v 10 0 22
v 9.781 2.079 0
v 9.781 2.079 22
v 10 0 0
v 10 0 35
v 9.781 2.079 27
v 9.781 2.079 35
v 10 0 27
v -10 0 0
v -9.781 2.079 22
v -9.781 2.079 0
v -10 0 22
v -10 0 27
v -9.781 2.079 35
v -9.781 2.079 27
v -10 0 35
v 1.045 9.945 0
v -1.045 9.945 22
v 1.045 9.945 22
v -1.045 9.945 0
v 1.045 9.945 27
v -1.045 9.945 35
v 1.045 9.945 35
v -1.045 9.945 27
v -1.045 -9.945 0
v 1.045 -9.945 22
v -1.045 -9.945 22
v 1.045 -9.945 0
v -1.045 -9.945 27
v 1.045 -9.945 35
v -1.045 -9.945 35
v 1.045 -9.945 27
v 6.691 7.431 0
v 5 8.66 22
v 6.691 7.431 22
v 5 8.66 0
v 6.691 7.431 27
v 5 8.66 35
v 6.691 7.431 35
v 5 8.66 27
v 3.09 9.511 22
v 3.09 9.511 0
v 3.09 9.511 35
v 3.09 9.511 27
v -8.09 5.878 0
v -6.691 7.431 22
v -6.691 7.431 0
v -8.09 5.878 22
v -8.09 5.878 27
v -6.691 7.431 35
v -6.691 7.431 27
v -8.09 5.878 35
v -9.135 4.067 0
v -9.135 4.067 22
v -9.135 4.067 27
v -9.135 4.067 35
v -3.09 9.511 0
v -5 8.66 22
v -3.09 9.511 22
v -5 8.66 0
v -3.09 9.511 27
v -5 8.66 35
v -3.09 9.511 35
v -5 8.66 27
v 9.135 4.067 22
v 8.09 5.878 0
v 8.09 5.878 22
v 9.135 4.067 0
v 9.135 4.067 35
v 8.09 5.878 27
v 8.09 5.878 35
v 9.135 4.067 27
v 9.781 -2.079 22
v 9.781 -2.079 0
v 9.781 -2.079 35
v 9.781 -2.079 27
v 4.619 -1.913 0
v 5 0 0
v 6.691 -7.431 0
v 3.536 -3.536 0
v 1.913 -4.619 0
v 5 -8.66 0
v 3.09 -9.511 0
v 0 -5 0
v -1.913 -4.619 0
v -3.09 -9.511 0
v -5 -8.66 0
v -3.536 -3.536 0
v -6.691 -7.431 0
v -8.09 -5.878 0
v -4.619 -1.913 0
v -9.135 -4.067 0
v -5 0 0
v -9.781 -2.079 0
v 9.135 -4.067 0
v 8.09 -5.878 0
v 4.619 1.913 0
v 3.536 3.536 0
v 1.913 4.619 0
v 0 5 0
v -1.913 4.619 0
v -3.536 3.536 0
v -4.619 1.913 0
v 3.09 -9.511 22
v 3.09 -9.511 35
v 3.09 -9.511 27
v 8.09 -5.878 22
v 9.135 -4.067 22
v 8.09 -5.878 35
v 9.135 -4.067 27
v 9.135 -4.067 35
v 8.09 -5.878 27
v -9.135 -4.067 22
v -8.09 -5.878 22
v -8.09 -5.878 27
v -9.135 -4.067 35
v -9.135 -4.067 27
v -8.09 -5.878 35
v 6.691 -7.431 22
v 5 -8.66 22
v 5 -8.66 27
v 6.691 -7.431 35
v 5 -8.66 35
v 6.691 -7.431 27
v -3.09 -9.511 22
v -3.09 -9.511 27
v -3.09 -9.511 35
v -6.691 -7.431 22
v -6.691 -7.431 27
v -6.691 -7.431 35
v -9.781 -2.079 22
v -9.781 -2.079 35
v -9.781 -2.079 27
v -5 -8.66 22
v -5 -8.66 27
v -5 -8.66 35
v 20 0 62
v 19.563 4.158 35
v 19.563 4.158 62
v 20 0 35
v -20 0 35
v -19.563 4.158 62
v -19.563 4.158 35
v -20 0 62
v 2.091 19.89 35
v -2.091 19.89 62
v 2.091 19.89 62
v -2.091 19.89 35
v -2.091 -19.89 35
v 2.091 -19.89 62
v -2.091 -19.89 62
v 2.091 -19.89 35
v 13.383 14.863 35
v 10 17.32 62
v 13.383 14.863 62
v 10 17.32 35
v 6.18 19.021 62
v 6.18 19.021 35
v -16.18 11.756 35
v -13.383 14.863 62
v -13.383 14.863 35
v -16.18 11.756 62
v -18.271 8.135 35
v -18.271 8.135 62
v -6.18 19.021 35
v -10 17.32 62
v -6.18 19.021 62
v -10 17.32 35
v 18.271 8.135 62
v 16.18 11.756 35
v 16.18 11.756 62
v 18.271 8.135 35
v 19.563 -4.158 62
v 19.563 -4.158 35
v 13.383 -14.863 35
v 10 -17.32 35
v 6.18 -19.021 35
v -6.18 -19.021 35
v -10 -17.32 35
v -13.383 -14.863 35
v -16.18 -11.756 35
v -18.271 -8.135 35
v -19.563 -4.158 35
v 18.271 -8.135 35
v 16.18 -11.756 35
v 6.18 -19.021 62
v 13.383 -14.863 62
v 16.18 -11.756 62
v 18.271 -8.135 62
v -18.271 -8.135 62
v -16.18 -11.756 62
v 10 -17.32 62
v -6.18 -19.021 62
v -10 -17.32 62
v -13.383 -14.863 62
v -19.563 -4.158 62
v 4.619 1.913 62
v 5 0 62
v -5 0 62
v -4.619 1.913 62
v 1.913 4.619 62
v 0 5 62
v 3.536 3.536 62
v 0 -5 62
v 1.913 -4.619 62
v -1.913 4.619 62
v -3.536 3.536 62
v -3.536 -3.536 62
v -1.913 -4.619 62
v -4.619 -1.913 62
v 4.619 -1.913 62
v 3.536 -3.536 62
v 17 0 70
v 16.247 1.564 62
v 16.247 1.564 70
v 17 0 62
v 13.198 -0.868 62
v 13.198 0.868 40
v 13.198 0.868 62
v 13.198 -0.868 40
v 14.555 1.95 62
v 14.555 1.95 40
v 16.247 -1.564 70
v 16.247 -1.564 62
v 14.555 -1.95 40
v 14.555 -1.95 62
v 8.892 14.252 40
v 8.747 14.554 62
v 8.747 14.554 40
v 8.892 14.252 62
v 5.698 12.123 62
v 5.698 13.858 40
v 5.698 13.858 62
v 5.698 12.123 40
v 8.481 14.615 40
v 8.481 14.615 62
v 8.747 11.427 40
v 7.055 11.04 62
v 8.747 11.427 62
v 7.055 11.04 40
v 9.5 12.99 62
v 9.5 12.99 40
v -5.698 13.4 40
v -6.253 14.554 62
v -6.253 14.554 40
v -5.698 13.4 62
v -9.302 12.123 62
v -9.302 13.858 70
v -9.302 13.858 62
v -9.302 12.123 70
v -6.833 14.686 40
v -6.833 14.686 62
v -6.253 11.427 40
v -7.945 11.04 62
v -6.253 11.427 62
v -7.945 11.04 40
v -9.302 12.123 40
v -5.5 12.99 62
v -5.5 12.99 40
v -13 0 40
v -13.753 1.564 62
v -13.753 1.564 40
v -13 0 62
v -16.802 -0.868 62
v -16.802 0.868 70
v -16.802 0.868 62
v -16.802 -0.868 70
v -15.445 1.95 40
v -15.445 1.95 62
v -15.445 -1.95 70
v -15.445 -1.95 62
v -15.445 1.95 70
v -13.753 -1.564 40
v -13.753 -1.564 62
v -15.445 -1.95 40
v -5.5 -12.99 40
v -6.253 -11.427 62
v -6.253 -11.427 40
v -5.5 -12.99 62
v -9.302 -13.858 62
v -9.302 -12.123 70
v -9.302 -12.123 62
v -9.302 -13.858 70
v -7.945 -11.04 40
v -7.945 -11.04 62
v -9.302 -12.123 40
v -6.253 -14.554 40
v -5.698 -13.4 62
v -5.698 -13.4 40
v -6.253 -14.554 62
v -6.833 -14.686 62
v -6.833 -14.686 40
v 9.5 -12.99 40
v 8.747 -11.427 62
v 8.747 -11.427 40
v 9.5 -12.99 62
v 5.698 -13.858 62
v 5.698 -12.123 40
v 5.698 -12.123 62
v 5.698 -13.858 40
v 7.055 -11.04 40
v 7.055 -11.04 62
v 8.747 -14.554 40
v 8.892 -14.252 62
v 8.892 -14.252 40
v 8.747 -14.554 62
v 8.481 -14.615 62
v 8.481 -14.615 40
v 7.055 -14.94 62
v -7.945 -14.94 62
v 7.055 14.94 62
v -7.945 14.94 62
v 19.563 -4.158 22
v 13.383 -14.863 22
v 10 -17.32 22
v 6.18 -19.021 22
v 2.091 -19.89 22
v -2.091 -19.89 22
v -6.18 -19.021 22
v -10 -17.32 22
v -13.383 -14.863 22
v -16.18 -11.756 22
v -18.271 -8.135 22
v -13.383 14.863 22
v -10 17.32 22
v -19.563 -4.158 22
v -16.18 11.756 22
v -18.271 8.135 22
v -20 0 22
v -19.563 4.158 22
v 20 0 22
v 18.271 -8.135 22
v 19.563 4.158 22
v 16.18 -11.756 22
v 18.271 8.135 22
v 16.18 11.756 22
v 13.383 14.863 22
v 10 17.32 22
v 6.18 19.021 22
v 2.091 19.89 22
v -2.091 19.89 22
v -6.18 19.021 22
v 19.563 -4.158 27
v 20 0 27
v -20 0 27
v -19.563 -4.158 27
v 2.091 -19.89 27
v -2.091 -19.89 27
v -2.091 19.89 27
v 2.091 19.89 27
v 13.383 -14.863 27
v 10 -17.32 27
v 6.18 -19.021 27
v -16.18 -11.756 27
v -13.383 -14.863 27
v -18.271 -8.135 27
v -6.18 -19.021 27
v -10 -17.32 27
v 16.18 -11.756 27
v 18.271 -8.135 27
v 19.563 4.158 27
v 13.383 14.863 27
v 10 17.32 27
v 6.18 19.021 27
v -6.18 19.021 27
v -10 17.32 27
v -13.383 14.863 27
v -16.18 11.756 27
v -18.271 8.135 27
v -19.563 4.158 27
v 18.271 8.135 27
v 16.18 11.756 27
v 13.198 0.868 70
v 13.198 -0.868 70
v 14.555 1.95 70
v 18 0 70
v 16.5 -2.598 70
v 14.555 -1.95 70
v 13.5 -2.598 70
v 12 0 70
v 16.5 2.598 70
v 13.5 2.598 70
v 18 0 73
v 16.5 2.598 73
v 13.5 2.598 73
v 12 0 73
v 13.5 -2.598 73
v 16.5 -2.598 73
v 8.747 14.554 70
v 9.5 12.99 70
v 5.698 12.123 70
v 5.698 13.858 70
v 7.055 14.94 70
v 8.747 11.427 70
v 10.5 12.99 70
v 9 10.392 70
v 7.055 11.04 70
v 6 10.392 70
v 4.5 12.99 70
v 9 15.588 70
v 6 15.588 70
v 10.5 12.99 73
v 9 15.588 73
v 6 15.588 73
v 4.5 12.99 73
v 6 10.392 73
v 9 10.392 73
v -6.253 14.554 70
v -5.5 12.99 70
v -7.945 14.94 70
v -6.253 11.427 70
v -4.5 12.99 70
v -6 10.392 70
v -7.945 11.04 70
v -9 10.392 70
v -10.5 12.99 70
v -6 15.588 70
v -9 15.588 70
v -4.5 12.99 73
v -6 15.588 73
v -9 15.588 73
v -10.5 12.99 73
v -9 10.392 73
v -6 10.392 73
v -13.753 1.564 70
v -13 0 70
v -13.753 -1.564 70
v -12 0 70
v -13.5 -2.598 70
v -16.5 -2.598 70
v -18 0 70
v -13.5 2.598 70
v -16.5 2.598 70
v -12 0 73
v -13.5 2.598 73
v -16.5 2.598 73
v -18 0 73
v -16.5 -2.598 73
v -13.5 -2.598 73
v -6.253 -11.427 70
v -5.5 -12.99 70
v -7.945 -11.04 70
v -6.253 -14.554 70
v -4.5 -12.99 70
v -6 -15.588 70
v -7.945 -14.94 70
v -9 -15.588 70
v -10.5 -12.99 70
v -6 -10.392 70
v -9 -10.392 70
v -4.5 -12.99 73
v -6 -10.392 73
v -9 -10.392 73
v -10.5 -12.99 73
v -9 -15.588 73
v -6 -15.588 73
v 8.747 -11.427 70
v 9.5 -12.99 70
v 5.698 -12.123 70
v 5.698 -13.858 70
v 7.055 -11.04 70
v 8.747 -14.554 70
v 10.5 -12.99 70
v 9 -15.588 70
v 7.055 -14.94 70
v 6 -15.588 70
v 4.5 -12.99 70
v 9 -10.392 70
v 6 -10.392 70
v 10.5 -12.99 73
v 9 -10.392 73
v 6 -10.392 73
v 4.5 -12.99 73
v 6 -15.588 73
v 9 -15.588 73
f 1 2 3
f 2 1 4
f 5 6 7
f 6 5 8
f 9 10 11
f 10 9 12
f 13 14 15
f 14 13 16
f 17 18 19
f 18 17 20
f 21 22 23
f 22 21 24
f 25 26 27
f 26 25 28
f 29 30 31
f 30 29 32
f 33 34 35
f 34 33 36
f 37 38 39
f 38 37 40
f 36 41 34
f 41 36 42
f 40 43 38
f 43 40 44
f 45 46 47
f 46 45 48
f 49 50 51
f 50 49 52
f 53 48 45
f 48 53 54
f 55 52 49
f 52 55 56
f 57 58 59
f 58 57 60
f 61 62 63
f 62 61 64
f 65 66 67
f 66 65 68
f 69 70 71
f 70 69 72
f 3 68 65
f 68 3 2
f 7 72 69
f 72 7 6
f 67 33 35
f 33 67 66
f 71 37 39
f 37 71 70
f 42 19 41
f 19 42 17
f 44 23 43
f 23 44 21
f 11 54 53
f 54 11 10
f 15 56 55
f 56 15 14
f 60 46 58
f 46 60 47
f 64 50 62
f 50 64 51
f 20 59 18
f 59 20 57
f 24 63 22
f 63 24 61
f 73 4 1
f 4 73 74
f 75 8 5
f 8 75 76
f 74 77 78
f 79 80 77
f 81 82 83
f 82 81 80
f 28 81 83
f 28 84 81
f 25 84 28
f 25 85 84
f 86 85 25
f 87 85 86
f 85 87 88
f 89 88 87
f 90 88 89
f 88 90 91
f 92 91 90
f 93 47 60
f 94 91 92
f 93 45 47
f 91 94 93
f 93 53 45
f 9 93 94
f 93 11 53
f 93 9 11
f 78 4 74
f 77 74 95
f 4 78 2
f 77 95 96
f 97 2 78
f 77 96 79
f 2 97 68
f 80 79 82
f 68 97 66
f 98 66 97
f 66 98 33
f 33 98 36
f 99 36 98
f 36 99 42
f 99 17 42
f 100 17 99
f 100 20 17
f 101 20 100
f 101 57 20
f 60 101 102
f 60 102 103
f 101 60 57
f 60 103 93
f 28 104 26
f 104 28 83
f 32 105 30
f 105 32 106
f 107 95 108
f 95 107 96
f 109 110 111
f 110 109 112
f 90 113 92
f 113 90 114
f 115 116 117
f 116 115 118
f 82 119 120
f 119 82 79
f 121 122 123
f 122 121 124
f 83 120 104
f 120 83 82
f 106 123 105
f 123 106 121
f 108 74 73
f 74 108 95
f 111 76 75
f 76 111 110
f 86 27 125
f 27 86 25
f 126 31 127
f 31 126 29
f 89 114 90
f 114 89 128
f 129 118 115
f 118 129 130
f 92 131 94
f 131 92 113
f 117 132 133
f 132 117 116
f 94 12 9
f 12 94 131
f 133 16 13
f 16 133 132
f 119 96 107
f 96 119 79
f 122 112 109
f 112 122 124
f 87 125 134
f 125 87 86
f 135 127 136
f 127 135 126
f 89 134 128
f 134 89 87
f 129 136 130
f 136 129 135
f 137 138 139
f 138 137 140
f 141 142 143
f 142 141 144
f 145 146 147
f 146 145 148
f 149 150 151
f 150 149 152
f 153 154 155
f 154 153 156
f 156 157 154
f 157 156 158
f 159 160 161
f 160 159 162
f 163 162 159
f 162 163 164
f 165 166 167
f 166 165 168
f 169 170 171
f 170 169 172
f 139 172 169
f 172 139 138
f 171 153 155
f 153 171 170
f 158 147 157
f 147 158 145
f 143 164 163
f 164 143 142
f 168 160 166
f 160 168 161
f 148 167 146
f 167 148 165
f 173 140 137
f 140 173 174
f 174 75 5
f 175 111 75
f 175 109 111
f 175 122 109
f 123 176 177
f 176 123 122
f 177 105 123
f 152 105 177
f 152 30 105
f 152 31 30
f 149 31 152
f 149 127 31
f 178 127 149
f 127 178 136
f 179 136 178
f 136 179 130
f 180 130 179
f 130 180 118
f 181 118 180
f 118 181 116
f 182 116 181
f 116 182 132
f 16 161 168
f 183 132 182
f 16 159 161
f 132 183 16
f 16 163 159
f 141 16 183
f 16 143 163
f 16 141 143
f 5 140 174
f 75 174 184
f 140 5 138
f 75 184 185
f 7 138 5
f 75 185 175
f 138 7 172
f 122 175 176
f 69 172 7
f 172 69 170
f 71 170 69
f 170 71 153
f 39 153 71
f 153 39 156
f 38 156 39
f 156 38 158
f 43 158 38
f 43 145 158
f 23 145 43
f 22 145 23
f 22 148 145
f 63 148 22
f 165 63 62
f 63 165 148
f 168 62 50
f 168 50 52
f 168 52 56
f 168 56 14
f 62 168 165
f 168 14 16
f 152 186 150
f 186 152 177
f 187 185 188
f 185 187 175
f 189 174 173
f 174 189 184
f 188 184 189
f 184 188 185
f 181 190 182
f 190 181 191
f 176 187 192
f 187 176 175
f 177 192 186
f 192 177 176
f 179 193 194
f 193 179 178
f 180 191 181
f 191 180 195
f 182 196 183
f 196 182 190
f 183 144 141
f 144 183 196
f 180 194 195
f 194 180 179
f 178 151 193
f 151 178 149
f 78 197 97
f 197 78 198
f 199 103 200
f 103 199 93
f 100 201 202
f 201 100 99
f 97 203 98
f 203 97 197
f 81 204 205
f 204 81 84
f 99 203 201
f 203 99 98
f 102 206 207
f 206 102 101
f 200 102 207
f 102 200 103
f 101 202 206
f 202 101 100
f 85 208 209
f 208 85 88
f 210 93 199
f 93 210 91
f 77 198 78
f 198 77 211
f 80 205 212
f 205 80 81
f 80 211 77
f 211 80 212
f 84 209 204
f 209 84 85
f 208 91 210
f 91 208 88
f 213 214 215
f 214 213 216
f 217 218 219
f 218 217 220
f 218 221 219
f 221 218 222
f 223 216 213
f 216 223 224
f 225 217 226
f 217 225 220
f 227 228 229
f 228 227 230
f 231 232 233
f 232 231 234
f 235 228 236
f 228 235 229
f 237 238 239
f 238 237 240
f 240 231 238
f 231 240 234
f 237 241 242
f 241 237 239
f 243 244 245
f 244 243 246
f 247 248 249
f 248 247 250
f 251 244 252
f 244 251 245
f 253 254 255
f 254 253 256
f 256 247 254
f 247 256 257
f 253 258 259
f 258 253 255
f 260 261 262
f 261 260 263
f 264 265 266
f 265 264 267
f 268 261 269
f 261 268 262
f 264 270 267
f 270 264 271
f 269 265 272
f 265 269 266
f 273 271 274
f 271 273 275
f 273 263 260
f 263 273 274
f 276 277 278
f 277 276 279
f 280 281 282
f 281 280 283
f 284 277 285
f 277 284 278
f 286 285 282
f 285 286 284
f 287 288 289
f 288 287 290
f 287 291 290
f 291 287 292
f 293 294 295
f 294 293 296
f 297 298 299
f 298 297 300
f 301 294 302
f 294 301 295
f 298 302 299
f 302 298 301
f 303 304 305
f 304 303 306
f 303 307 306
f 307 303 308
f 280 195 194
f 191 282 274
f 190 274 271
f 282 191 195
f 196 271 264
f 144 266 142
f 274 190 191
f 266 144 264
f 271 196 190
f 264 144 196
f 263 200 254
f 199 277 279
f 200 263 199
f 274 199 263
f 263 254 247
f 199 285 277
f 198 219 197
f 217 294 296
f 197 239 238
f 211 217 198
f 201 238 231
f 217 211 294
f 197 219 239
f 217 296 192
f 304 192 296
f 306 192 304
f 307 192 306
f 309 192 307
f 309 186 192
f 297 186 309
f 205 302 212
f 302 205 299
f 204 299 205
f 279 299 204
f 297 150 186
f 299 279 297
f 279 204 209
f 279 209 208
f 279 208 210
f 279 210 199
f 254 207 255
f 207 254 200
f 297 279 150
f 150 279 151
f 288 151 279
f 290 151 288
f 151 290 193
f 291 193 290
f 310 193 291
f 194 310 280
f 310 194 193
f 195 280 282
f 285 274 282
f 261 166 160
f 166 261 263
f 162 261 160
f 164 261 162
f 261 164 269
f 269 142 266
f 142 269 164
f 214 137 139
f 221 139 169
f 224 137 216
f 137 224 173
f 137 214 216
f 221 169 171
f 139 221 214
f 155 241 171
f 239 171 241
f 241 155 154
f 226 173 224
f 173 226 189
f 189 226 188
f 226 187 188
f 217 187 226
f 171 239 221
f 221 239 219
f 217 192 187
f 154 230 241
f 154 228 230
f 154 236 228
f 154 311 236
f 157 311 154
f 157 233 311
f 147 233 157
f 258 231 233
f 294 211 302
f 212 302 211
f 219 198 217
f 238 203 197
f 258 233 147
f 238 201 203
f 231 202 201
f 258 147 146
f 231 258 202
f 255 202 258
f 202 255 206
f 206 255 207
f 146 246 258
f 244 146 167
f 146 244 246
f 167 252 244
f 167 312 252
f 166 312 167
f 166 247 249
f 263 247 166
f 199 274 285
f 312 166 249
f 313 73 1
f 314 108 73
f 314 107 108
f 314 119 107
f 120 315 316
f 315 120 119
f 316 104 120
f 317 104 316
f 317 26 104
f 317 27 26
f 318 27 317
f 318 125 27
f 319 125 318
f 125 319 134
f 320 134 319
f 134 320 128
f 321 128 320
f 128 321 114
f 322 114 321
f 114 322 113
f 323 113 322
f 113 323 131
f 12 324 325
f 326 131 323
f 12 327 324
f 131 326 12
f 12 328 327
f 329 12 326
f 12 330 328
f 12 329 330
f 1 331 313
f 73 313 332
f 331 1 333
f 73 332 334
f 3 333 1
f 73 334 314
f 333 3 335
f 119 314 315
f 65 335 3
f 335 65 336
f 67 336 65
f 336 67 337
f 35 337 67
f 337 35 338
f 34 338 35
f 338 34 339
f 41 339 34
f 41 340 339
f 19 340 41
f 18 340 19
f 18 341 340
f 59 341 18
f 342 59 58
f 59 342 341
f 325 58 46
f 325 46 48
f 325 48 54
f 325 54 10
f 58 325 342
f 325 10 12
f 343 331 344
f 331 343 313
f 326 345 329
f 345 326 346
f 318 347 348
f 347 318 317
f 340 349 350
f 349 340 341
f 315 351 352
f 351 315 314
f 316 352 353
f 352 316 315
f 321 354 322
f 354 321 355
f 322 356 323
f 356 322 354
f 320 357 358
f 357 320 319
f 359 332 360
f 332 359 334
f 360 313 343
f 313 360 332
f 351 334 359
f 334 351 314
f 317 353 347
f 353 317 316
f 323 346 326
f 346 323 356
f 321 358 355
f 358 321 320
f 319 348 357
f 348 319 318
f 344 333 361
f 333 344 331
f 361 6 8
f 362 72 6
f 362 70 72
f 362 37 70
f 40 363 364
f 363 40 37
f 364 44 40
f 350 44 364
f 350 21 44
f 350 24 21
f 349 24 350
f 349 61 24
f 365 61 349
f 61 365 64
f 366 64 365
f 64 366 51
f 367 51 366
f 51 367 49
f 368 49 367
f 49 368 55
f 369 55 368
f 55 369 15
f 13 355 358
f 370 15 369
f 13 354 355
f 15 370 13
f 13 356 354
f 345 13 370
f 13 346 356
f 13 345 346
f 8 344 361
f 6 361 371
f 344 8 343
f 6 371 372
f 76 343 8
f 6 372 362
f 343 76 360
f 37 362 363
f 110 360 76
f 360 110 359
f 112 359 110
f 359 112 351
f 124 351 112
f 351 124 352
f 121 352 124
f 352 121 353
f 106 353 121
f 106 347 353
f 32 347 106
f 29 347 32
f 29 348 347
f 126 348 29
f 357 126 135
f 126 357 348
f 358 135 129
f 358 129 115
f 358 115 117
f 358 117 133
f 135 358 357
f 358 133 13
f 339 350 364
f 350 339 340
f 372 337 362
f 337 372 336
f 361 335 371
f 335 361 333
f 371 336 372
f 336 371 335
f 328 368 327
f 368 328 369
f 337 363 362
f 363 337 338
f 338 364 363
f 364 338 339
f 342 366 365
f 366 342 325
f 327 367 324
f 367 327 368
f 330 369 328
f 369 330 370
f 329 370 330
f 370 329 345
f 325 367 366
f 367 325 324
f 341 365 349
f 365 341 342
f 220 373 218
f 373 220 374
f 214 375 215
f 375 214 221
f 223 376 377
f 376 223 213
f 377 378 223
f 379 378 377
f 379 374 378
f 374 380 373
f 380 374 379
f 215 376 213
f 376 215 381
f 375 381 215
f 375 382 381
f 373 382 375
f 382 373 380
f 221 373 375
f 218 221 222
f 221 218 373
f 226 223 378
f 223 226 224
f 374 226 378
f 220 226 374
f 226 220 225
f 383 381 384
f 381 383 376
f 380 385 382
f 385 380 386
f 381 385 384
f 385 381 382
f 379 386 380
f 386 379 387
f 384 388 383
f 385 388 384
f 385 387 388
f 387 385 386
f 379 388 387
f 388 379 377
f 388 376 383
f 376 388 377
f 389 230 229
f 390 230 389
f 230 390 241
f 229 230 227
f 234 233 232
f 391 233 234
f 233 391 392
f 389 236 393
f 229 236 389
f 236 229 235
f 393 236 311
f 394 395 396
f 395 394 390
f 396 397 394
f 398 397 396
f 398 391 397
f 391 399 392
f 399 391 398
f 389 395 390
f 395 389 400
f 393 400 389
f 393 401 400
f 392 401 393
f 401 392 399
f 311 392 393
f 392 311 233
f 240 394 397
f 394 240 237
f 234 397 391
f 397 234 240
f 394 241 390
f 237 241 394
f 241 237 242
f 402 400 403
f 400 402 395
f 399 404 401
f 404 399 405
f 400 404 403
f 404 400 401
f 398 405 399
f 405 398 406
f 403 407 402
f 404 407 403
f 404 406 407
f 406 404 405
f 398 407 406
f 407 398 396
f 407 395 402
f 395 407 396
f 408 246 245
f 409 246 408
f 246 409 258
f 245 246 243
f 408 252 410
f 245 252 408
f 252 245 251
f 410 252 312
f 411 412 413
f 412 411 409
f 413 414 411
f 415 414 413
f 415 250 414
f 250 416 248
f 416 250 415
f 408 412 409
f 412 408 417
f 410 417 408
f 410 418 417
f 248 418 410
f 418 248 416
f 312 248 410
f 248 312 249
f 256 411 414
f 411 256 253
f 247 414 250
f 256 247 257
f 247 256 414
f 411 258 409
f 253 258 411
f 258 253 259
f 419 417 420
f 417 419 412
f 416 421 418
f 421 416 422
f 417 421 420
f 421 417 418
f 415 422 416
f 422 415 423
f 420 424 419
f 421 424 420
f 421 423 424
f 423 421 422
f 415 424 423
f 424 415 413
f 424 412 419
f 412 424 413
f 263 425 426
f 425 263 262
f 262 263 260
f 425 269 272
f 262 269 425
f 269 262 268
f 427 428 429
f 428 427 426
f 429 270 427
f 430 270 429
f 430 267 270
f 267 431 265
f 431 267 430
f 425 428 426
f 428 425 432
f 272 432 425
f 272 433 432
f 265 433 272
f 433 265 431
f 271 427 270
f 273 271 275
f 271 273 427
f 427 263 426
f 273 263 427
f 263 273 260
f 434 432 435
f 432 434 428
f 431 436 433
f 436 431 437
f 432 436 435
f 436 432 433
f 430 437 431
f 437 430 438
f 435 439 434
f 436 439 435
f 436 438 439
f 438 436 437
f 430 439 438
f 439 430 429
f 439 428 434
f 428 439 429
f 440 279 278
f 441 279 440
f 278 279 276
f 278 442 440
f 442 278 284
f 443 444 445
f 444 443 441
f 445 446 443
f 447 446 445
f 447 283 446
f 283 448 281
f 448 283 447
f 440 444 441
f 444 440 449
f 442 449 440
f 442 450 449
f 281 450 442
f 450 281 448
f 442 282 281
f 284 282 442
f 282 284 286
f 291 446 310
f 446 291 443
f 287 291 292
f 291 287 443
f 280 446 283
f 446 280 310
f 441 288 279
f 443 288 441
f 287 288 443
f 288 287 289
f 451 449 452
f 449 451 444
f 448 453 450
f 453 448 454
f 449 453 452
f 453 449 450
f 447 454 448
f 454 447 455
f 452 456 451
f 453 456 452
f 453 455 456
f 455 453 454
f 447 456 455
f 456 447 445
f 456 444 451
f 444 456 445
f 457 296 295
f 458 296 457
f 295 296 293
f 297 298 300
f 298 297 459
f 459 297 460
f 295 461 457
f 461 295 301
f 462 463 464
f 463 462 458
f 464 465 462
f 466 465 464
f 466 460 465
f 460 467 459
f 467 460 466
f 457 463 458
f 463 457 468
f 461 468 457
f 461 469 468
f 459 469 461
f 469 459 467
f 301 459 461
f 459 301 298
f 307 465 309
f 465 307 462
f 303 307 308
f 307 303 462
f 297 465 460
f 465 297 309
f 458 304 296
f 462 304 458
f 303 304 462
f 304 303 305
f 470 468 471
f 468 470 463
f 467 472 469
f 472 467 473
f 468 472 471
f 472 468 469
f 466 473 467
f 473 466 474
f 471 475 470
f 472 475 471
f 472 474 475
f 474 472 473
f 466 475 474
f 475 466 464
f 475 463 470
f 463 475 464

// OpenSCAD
// Parameters
shaft_d = 20;
shaft_l = 40;
bore_d = 10;

flange_d = 40;
flange_t = 5;
bolt_hole_d = 4;
bolt_circle_d = 30;

spacer_t = 2;

bolt_d = 4;
bolt_l = 30;
nut_d = 6;
nut_h = 3;

// Modules
module shaft() {
    difference() {
        union() {
            cylinder(d=shaft_d, h=shaft_l);
            translate([0, 0, shaft_l - flange_t])
                cylinder(d=flange_d, h=flange_t);
        }
        translate([0, 0, -1])
            cylinder(d=bore_d, h=shaft_l + 2);
    }
}

module flange_plate() {
    difference() {
        cylinder(d=flange_d, h=flange_t);
        translate([0, 0, -1])
            cylinder(d=bore_d, h=flange_t + 2);
        for (i = [0:5]) {
            angle = i * 60;
            x = bolt_circle_d / 2 * cos(angle);
            y = bolt_circle_d / 2 * sin(angle);
            translate([x, y, -1])
                cylinder(d=bolt_hole_d, h=flange_t + 2);
        }
    }
}

module spacer_ring() {
    difference() {
        cylinder(d=flange_d, h=spacer_t);
        translate([0, 0, -1])
            cylinder(d=bore_d, h=spacer_t + 2);
        for (i = [0:5]) {
            angle = i * 60;
            x = bolt_circle_d / 2 * cos(angle);
            y = bolt_circle_d / 2 * sin(angle);
            translate([x, y, -1])
                cylinder(d=bolt_hole_d, h=spacer_t + 2);
        }
    }
}

module bolt_with_nut() {
    union() {
        cylinder(d=bolt_d, h=bolt_l);
        translate([0, 0, bolt_l])
            cylinder(d=nut_d, h=nut_h, $fn=6);
    }
}

// Assembly
module coupling() {
    // Layer 1: Input Shaft
    translate([0, 0, 0])
        shaft();

    // Layer 2: Flange Plates on Input Shaft
    translate([0, 0, shaft_l])
        flange_plate();
    translate([0, 0, shaft_l + flange_t])
        flange_plate();

    // Layer 3: Spacer Ring
    translate([0, 0, shaft_l + 2 * flange_t])
        spacer_ring();

    // Layer 4: Flange Plates on Output Shaft
    translate([0, 0, shaft_l + 2 * flange_t + spacer_t])
        flange_plate();
    translate([0, 0, shaft_l + 3 * flange_t + spacer_t])
        flange_plate();

    // Layer 5: Output Shaft
    translate([0, 0, shaft_l + 4 * flange_t + spacer_t])
        rotate([180, 0, 0])
            shaft();

    // Layer 6: Bolts and Nuts
    for (i = [0:5]) {
        angle = i * 60;
        x = bolt_circle_d / 2 * cos(angle);
        y = bolt_circle_d / 2 * sin(angle);
        translate([x, y, shaft_l])
            bolt_with_nut();
    }
}

// Render the full coupling
coupling();
